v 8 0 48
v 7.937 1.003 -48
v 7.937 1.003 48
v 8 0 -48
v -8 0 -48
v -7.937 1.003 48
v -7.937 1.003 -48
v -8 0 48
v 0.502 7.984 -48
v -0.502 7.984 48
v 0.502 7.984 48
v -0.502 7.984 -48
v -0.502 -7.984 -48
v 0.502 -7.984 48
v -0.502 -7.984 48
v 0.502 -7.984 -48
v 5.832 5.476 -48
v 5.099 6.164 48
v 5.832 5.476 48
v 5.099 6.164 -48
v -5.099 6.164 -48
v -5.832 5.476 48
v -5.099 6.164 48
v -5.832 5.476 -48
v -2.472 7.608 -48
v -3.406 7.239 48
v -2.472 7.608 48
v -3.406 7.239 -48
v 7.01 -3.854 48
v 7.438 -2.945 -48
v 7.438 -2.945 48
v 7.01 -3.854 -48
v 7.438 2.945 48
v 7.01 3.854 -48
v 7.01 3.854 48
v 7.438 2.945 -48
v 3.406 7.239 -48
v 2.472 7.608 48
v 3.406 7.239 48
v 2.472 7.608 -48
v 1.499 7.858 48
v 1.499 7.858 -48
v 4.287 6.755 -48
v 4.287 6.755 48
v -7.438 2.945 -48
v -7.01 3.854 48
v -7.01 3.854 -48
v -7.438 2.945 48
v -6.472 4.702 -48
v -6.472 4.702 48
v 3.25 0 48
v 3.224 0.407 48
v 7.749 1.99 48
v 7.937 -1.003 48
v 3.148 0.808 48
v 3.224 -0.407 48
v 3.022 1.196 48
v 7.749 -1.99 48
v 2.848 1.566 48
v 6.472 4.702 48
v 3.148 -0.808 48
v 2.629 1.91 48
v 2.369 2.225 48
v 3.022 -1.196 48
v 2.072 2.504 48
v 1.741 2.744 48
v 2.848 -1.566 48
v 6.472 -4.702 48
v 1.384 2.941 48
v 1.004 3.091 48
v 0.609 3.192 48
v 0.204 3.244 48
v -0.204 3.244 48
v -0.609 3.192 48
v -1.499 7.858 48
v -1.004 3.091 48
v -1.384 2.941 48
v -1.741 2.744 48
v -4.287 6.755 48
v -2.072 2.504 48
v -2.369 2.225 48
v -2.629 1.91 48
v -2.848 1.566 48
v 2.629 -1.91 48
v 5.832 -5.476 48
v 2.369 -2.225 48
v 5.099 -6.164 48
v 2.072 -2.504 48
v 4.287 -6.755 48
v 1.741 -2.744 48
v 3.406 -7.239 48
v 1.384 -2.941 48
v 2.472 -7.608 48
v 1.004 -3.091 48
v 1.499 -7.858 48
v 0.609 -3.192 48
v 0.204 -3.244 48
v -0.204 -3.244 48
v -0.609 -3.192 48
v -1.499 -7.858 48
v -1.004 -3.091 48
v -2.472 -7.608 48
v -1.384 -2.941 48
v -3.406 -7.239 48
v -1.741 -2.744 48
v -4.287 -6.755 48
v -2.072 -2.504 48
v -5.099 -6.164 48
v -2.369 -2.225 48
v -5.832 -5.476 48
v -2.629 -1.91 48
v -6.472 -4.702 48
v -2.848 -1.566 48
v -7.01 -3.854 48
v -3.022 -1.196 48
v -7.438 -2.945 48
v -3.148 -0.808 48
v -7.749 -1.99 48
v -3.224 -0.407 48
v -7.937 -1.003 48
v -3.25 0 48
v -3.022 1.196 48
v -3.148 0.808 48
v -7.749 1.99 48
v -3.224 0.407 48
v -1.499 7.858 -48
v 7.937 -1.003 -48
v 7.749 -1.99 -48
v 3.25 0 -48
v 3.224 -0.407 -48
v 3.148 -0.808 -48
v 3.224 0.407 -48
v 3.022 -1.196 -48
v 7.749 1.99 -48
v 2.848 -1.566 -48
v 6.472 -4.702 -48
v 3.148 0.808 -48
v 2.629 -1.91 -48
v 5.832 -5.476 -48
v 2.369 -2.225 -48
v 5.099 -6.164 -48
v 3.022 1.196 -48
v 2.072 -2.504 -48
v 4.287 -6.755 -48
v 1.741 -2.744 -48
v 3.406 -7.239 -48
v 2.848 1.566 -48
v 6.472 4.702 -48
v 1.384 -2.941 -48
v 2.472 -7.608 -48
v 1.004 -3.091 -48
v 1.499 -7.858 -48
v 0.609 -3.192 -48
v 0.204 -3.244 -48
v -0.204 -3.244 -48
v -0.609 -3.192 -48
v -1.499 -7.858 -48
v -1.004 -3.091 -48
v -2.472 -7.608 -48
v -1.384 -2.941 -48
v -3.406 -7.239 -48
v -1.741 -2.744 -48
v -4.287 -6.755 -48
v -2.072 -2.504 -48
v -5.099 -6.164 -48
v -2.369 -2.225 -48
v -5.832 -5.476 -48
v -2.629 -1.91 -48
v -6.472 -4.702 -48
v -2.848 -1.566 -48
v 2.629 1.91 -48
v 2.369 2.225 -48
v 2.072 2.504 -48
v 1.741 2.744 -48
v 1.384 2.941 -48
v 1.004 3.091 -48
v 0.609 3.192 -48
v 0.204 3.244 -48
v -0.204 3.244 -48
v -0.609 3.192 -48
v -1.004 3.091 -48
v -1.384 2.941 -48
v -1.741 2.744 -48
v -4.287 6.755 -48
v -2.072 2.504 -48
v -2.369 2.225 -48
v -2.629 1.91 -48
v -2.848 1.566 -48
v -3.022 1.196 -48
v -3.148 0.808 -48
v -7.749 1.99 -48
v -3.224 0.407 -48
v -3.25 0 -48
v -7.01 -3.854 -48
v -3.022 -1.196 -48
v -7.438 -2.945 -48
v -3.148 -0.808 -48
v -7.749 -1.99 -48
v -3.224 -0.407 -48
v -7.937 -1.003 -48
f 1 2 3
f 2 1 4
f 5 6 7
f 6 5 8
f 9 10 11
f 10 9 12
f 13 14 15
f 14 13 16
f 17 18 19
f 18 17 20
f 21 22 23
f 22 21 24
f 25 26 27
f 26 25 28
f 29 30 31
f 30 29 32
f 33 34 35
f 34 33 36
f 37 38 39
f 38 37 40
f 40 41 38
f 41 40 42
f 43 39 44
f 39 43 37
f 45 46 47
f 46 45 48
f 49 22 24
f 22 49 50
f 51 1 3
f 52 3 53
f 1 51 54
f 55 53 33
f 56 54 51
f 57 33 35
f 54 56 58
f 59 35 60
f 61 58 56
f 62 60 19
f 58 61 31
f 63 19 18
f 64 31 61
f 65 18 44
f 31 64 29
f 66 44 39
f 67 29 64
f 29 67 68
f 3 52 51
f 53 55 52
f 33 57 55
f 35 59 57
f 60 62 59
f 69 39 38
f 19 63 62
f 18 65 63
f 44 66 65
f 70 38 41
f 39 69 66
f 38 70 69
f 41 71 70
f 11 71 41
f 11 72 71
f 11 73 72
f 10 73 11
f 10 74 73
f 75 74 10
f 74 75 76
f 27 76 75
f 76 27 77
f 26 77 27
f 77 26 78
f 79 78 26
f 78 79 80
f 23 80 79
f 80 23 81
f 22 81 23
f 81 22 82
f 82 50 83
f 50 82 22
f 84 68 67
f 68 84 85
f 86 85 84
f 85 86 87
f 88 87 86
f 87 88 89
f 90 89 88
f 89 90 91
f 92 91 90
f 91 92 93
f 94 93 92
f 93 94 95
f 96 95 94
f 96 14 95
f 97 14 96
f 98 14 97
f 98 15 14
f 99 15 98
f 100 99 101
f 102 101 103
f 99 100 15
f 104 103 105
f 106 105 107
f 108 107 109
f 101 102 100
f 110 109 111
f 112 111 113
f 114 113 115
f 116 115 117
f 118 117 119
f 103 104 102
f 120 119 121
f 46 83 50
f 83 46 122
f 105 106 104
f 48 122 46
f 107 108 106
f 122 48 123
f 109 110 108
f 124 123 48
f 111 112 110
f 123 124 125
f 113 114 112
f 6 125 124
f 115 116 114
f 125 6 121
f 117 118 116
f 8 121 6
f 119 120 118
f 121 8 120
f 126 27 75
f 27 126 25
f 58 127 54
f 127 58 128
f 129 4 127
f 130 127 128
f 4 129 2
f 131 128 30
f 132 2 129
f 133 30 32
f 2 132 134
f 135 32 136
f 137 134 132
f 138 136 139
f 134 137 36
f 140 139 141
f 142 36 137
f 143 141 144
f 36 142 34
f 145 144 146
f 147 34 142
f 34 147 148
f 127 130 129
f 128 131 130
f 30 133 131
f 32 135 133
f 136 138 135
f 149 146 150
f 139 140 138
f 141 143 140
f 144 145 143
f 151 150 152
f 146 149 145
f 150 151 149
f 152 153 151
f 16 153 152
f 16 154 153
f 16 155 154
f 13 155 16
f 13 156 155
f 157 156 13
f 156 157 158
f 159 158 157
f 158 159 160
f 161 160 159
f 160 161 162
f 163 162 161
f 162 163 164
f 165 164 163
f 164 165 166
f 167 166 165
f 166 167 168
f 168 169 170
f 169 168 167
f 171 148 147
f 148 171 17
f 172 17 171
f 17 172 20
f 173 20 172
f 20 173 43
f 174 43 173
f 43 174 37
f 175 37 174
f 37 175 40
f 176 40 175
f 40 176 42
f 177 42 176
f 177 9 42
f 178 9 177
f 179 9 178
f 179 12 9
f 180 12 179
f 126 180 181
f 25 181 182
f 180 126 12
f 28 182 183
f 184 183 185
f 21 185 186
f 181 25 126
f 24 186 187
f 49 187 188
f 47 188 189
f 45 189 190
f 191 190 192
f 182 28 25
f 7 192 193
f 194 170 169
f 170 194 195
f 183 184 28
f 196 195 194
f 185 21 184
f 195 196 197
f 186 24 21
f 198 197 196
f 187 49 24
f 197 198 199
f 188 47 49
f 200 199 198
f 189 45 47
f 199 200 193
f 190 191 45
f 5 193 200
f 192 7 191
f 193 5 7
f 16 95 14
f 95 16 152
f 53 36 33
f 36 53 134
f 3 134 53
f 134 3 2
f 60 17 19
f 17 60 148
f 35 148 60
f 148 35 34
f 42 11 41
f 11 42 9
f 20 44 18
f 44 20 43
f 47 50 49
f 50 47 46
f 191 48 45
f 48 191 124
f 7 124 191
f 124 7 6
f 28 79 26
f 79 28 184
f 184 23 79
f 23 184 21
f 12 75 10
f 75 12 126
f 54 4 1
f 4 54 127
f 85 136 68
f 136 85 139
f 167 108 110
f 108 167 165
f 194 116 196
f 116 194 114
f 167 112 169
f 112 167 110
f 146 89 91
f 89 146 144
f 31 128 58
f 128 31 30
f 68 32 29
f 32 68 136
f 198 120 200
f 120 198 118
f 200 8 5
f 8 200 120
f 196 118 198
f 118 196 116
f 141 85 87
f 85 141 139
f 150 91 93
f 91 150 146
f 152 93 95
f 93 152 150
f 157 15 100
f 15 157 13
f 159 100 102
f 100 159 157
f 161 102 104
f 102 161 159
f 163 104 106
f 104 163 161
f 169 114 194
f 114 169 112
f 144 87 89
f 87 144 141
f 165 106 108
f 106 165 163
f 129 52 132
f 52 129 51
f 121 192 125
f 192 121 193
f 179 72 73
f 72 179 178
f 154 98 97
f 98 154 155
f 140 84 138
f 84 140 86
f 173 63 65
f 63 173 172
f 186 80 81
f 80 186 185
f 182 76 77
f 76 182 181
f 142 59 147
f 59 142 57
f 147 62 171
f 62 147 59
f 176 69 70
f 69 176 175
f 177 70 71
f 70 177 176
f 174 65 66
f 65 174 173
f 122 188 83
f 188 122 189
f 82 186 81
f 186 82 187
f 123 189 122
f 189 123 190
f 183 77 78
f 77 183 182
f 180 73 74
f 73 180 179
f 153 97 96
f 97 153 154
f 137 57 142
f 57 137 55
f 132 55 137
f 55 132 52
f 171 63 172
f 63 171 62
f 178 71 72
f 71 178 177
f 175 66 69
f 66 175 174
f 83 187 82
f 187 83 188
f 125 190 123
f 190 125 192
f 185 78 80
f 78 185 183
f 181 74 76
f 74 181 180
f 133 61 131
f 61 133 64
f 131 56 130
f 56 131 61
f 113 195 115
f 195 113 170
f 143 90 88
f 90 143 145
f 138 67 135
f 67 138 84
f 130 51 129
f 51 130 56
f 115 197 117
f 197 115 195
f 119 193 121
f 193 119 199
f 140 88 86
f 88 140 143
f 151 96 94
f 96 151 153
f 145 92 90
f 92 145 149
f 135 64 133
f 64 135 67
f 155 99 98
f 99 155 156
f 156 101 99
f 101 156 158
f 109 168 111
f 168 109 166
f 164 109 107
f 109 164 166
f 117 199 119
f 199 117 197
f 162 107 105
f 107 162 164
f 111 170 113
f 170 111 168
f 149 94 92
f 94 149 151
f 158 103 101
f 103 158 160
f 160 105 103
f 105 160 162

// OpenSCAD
$fn = 50;


difference() {
	union() {
		translate(v = [0, 0, -48.0000000000]) {
			cylinder(h = 96, r = 8.0000000000);
		}
	}
	union() {
		translate(v = [0, 0, -100.0000000000]) {
			cylinder(h = 200, r = 3.2500000000);
		}
	}
}
